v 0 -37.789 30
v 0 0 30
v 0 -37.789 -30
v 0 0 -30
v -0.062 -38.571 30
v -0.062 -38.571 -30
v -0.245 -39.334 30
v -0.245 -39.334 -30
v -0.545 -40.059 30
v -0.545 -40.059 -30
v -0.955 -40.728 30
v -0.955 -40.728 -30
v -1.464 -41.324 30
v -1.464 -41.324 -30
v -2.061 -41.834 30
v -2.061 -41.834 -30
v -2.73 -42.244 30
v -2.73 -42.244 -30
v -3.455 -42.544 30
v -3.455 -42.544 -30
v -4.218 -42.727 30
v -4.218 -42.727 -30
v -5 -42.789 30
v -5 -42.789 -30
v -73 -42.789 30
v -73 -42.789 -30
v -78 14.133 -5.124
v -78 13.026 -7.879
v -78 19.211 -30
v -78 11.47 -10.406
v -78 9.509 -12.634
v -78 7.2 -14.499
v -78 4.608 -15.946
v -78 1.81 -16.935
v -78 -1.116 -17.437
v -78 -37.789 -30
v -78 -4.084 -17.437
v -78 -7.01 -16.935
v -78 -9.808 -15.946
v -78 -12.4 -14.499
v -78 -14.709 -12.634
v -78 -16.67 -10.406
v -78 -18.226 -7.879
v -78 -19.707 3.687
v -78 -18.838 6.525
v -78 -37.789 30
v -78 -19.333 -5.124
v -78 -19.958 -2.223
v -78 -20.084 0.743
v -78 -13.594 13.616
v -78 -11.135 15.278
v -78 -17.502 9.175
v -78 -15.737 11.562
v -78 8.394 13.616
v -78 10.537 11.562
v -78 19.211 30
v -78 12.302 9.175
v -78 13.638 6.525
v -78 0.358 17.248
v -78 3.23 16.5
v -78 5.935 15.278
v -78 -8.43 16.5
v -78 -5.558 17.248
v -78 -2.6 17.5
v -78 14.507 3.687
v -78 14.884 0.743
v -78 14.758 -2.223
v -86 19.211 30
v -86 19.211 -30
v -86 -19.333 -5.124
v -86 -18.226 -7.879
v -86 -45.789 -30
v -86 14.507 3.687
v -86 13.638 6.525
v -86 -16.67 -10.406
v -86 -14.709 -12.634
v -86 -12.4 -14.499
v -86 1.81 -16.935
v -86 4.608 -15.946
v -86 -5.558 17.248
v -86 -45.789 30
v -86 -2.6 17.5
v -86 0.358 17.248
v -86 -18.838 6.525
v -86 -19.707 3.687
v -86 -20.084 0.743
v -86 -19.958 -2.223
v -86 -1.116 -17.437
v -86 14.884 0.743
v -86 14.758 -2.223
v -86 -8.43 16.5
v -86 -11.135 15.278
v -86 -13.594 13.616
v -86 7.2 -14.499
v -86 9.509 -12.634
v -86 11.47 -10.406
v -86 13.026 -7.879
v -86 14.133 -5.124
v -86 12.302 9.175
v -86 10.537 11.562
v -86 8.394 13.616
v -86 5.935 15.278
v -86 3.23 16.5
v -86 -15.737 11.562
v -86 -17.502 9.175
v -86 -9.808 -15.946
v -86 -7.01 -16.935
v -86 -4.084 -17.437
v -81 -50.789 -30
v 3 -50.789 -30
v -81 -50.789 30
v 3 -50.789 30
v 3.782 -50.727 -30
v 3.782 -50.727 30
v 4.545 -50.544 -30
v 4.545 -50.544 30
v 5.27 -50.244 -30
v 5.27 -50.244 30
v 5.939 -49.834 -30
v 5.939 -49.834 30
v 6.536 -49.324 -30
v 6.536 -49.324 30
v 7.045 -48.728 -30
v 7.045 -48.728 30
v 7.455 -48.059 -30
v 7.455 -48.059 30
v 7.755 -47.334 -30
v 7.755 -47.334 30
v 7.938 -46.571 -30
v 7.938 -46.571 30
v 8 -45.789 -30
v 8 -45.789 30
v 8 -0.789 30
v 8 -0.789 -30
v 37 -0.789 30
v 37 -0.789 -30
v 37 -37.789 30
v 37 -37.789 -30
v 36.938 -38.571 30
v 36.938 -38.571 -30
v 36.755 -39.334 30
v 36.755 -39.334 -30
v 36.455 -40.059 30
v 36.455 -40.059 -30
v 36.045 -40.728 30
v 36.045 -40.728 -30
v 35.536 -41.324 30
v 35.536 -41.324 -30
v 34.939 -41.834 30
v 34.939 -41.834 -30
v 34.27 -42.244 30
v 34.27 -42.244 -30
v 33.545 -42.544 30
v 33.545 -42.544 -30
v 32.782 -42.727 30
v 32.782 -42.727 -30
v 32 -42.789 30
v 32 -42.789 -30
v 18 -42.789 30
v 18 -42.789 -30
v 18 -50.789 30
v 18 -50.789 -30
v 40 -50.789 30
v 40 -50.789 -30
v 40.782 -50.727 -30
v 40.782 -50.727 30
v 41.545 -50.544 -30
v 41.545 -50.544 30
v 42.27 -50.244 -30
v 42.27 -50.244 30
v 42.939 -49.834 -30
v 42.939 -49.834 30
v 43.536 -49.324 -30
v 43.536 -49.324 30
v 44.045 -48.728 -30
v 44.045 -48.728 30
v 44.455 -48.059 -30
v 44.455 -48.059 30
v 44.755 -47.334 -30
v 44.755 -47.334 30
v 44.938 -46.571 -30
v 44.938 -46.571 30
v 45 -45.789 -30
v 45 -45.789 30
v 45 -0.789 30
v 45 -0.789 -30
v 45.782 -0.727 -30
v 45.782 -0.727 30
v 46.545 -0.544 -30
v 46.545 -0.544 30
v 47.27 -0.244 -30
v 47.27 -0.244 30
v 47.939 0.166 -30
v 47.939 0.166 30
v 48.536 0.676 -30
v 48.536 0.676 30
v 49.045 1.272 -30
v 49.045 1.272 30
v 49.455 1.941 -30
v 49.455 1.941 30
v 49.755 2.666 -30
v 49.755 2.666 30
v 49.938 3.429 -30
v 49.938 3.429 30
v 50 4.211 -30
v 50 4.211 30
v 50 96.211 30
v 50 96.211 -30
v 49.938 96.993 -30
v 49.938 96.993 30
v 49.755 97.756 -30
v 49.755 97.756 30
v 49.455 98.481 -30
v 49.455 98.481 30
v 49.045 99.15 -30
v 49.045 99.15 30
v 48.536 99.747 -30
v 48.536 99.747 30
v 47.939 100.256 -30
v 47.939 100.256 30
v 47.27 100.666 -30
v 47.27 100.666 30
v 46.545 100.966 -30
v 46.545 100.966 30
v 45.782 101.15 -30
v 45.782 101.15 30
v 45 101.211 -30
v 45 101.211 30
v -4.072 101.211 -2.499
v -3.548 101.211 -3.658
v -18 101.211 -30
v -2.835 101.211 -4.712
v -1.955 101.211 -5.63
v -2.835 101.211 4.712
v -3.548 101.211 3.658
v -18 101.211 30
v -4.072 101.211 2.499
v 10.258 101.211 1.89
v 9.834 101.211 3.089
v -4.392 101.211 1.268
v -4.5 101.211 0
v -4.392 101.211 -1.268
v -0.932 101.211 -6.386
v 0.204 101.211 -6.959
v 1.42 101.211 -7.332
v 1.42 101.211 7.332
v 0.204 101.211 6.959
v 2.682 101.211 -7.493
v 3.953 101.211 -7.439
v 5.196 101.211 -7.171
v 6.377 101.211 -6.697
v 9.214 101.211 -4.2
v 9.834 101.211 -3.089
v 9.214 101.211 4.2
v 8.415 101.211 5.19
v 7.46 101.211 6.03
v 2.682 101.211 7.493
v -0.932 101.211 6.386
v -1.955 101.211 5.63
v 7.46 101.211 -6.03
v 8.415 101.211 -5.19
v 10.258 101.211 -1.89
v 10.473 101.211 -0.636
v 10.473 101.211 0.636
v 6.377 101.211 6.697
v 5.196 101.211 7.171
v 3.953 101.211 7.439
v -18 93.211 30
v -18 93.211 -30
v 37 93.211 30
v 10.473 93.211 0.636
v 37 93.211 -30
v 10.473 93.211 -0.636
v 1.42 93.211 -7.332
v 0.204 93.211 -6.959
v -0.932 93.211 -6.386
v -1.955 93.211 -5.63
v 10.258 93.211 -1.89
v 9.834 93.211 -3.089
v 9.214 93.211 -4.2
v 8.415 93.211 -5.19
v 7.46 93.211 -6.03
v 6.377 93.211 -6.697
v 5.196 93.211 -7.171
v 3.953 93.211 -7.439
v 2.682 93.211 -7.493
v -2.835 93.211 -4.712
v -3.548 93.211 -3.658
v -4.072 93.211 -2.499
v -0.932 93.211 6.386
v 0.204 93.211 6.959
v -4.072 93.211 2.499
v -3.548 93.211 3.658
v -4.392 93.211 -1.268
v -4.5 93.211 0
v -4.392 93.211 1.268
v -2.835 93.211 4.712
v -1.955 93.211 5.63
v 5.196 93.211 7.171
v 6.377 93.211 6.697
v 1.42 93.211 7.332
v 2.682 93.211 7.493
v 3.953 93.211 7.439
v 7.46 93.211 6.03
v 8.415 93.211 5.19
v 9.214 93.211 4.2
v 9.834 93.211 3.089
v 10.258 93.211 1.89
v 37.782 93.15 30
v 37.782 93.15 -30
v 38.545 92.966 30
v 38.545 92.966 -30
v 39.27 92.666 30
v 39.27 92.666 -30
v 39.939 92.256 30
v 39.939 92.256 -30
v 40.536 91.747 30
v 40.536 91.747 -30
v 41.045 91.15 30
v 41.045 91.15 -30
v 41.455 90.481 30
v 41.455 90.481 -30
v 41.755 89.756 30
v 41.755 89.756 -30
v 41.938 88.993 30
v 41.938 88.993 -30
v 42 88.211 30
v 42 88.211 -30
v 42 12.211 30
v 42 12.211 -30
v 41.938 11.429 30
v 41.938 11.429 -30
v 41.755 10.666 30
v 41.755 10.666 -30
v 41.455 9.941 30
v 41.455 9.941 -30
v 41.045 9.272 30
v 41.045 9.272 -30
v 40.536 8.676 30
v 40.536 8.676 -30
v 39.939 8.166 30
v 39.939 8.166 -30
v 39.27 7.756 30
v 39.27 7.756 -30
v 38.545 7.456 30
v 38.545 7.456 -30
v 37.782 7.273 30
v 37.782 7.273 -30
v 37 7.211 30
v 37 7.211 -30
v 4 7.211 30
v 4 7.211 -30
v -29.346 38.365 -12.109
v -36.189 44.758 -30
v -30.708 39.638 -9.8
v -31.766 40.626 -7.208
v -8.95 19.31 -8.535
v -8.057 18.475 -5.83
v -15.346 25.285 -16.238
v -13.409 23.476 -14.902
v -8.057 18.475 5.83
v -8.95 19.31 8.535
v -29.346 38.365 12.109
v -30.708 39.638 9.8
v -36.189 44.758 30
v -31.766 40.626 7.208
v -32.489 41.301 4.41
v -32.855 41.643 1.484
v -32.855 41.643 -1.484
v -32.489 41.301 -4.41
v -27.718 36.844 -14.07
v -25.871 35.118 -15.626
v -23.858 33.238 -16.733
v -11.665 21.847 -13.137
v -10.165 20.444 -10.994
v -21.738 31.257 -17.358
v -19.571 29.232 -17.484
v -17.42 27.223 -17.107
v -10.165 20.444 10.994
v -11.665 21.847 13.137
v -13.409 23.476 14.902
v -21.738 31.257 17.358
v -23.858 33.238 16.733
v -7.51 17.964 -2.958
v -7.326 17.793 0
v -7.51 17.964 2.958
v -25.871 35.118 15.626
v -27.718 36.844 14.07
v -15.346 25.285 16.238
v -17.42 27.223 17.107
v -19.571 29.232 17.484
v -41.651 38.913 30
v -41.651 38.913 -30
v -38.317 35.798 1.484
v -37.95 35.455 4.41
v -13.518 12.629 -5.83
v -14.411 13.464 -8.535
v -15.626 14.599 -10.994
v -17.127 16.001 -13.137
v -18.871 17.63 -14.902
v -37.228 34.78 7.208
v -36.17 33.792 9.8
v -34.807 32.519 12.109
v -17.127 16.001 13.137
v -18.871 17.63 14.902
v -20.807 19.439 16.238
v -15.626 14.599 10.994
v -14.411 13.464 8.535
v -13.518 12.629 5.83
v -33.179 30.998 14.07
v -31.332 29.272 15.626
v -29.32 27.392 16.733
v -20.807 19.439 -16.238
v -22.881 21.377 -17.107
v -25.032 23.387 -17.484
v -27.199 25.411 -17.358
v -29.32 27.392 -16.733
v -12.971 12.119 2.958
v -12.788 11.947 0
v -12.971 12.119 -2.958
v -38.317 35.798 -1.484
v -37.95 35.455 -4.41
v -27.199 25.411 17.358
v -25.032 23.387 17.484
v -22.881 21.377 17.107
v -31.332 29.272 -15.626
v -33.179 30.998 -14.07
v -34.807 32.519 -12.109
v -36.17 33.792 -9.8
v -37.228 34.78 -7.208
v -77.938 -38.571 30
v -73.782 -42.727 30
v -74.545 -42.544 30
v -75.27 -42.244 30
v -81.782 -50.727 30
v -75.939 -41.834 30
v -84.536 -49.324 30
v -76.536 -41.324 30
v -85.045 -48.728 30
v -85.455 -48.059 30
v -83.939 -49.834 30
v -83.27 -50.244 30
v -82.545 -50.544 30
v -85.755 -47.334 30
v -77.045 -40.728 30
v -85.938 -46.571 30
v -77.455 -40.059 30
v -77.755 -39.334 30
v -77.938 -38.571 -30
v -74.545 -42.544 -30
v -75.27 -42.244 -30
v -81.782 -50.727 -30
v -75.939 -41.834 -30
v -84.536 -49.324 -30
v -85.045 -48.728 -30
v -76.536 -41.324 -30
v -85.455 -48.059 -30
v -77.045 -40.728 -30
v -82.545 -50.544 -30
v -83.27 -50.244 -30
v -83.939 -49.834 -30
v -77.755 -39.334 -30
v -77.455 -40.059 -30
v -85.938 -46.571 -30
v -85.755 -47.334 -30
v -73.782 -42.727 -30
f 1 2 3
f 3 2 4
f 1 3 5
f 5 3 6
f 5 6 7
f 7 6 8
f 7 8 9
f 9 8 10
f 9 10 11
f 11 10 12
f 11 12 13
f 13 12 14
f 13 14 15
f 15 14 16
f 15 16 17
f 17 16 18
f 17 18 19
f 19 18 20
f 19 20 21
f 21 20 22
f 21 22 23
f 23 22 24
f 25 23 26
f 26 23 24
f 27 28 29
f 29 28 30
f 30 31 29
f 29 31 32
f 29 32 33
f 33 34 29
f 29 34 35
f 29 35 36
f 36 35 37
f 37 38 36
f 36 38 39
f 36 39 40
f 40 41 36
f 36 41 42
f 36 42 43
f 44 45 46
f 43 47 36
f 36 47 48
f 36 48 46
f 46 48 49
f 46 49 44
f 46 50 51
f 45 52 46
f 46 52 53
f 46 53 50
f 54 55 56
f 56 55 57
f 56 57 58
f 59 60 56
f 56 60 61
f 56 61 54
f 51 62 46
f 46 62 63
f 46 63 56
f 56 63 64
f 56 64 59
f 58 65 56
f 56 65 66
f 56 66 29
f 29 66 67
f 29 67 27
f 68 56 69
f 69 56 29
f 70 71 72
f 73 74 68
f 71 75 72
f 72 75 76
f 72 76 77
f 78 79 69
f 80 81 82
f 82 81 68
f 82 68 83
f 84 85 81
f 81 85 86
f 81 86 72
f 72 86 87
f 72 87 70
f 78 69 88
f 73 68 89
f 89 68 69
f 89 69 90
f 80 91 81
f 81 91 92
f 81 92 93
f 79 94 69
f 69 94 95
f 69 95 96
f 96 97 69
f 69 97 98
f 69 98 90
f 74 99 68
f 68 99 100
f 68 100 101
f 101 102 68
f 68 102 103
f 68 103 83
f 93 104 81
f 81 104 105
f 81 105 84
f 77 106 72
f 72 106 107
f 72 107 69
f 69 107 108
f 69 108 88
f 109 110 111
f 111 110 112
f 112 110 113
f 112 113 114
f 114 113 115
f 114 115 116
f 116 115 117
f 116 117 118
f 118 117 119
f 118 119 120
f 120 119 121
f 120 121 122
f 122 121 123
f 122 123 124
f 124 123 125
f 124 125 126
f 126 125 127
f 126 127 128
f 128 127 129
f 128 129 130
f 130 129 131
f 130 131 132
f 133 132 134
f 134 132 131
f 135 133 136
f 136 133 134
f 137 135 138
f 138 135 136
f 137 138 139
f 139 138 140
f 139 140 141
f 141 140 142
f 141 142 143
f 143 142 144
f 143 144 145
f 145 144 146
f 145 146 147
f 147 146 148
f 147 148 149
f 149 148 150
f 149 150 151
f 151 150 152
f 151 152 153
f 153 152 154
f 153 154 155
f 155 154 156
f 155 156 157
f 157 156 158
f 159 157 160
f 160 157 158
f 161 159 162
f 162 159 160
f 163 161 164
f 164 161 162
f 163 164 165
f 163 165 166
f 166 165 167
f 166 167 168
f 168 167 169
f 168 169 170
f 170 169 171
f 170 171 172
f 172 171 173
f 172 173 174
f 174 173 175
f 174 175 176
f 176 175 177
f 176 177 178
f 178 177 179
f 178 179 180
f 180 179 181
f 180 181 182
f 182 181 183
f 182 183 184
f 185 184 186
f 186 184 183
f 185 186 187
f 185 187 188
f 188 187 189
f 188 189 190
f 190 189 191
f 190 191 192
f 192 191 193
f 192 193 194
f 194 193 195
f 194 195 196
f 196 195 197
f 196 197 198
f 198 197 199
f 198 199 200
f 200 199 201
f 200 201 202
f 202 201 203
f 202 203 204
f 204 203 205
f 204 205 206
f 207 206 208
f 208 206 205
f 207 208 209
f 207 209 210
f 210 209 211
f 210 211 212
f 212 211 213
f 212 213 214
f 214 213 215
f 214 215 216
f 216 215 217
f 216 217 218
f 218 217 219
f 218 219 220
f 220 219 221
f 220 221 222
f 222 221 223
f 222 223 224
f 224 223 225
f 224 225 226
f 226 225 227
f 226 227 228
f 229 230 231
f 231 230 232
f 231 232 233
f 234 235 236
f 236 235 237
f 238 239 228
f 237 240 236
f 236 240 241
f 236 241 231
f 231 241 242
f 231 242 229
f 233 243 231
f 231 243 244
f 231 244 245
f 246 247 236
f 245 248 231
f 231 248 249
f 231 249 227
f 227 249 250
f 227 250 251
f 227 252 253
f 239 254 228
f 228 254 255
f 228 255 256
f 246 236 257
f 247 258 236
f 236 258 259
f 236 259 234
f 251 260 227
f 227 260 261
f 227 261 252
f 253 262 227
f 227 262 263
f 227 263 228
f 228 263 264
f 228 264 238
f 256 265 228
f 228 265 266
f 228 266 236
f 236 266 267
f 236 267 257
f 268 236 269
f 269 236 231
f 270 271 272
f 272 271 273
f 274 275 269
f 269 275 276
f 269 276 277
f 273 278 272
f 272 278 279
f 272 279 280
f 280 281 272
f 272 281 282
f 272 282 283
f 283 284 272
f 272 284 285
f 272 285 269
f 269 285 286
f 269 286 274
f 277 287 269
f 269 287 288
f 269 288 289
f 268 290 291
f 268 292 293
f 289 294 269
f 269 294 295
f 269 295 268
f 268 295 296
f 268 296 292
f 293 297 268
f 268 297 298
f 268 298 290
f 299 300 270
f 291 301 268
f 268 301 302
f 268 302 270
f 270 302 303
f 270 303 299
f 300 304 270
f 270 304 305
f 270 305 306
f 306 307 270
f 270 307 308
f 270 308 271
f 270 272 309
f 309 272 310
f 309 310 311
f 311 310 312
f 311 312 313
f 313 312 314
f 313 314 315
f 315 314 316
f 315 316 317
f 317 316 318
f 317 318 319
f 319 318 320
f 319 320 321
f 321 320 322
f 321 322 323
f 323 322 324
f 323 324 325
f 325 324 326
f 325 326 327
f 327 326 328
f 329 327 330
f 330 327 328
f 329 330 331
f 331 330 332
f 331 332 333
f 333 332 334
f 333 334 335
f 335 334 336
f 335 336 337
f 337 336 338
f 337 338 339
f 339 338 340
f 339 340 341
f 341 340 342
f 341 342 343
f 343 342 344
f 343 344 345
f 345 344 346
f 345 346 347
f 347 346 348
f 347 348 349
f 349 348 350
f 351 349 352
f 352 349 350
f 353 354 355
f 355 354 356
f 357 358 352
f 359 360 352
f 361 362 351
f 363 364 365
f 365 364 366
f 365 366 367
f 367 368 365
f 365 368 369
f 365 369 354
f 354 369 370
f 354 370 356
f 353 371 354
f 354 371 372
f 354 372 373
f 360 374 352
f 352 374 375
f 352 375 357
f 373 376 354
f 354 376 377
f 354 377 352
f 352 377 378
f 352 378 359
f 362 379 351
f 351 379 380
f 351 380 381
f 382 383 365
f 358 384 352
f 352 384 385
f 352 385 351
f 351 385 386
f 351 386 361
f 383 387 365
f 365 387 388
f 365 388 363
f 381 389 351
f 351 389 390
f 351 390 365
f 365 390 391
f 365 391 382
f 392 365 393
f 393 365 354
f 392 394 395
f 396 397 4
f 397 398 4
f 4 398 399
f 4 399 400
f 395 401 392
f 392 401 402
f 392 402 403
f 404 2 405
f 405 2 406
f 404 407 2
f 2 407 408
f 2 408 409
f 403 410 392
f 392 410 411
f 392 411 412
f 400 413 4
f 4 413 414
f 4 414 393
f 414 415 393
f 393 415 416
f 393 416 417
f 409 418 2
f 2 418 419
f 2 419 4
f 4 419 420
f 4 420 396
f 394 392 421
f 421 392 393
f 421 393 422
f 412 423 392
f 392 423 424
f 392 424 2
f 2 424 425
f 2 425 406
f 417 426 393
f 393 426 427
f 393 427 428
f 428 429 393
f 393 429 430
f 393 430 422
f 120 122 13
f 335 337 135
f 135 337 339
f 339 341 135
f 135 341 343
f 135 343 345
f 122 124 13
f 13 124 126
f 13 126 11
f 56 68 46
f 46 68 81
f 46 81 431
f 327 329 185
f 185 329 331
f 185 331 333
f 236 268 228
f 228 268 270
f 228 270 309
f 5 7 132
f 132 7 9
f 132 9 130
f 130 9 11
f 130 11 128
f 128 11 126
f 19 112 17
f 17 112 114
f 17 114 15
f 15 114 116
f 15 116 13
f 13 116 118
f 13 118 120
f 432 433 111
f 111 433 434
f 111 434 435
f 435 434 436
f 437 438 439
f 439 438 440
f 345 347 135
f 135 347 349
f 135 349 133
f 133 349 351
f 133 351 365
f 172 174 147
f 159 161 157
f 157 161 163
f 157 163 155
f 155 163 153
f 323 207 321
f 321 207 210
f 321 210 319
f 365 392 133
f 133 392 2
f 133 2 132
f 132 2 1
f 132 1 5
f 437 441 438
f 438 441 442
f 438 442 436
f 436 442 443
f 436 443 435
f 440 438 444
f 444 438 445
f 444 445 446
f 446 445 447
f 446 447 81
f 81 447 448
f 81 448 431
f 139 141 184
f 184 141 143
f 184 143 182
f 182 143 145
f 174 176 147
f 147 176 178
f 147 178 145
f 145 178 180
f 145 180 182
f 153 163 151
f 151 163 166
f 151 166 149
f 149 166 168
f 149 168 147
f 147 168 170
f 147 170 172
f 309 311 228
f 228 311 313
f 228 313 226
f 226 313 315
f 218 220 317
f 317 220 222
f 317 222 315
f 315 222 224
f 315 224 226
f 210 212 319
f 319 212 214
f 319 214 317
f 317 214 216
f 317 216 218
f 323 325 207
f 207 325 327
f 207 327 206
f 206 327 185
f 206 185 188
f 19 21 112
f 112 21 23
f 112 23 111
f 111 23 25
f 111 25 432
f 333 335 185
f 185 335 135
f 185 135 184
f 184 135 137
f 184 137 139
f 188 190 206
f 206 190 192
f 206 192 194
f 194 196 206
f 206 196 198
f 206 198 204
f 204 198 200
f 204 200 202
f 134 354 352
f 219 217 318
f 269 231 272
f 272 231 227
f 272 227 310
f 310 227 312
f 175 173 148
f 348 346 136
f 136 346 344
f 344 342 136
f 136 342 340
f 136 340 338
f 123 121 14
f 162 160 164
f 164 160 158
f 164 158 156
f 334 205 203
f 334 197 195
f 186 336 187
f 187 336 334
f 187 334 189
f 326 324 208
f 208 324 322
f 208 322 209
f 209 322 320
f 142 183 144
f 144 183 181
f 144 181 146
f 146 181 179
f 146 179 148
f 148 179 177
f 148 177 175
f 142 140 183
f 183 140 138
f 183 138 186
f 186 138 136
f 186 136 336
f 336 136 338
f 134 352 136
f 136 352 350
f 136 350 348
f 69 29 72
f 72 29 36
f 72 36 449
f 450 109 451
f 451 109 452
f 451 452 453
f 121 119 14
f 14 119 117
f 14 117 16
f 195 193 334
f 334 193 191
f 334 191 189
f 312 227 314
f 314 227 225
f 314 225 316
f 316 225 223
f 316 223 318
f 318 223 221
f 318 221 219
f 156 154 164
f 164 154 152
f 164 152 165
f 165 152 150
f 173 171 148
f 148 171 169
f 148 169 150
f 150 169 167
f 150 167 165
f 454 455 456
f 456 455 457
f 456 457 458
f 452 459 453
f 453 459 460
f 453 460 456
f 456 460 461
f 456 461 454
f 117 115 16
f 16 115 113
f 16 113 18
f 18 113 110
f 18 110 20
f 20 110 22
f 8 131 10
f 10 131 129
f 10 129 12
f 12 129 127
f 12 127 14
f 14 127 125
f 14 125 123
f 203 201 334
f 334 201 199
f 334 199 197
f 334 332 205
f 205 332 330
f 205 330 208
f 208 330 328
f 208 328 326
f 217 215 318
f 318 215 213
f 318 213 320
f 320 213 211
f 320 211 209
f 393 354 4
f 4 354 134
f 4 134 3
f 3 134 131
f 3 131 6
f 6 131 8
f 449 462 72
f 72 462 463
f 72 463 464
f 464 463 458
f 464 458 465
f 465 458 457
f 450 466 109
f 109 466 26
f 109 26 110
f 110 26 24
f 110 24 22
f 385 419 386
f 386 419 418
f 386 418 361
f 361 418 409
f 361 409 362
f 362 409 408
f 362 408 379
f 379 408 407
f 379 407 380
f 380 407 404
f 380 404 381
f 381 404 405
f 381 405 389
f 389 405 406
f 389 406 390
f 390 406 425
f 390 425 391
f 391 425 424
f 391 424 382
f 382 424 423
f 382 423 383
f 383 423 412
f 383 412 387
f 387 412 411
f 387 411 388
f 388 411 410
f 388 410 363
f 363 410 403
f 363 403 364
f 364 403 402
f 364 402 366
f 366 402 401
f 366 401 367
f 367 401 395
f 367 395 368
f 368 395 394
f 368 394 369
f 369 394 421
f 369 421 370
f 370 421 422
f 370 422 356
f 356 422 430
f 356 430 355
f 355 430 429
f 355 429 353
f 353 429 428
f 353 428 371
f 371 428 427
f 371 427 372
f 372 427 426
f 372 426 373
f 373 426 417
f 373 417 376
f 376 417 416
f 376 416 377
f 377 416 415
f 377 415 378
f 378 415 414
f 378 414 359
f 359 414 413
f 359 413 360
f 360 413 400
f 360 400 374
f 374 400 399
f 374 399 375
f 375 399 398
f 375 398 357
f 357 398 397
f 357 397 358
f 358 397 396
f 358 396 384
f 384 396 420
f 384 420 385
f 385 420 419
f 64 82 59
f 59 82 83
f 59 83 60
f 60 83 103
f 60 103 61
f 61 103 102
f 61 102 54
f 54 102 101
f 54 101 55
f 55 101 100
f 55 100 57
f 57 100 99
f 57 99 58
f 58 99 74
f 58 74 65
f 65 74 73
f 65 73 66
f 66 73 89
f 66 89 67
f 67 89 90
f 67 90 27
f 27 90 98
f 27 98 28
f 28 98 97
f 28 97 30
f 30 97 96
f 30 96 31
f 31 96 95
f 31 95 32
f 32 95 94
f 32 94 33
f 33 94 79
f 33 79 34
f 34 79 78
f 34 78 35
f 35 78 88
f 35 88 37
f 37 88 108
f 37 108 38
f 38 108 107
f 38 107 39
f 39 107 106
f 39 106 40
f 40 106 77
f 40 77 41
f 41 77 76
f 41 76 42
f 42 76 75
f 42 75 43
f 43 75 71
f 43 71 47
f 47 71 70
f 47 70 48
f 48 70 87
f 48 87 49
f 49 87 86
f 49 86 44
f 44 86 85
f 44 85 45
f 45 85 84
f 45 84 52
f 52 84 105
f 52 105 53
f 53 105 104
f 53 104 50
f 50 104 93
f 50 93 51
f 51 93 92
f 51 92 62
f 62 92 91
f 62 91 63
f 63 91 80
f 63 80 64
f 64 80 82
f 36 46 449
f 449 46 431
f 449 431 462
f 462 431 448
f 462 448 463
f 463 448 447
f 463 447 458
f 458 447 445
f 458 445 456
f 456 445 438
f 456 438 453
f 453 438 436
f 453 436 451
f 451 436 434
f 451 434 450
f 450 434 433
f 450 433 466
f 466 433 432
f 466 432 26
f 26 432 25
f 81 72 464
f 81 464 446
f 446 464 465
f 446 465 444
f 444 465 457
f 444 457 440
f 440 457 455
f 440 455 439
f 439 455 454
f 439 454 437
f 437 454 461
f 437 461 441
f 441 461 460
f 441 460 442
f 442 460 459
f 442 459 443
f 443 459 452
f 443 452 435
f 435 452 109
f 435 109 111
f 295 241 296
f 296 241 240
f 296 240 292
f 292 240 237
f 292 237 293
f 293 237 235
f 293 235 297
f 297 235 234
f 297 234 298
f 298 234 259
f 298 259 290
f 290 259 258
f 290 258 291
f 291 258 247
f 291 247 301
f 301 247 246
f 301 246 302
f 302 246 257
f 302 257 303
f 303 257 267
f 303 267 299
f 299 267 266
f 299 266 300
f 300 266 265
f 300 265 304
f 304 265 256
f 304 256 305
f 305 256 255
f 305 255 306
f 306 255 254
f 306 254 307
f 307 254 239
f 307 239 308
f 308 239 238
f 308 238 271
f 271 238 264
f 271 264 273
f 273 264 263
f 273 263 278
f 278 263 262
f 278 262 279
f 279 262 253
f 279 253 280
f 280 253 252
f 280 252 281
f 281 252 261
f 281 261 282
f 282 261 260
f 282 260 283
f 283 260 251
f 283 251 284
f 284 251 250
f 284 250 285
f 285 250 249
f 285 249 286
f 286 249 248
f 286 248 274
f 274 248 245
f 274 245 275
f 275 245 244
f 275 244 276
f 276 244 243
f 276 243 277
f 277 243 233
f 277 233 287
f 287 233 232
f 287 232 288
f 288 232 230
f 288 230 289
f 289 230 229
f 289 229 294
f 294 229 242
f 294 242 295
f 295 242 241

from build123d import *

# Parameters (mm, degrees)
BOSS_EXTRUDE3_DEPTH = 30
SKETCH10_R          = 17.5
CUT_EXTRUDE1_DEPTH  = 8
SKETCH11_R          = 17.5
CUT_EXTRUDE2_DEPTH  = 8
FILLET3_R           = 5
FILLET4_R           = 5
SKETCH12_R          = 7.5
CUT_EXTRUDE3_DEPTH  = 10


with BuildPart() as part:
    # Sketch3 → Boss-Extrude3 (new body, symmetric)
    with BuildSketch(Plane.XY):
        with BuildLine():
            Line((0, 0), (-41.650922989, 38.912730747))
            Line((-41.650922989, 38.912730747), (-36.189487094, 44.758474324))
            Line((-36.189487094, 44.758474324), (4, 7.211102551))
            Line((4, 7.211102551), (37, 7.211102551))
            ThreePointArc((37, 7.211102551), (40.535533906, 8.675568645), (42, 12.211102551))
            Line((42, 12.211102551), (42, 88.211102551))
            ThreePointArc((42, 88.211102551), (40.535533906, 91.746636457), (37, 93.211102551))
            Line((37, 93.211102551), (-18, 93.211102551))
            Line((-18, 93.211102551), (-18, 101.211102551))
            Line((-18, 101.211102551), (45, 101.211102551))
            ThreePointArc((45, 101.211102551), (48.535533906, 99.746636457), (50, 96.211102551))
            Line((50, 96.211102551), (50, 4.211102551))
            ThreePointArc((50, 4.211102551), (48.535533906, 0.675568645), (45, -0.788897449))
            Line((45, -0.788897449), (45, -45.788897449))
            ThreePointArc((45, -45.788897449), (43.535533906, -49.324431355), (40, -50.788897449))
            Line((40, -50.788897449), (18, -50.788897449))
            Line((18, -50.788897449), (18, -42.788897449))
            Line((18, -42.788897449), (32, -42.788897449))
            ThreePointArc((32, -42.788897449), (35.535533906, -41.324431355), (37, -37.788897449))
            Line((37, -37.788897449), (37, -0.788897449))
            Line((37, -0.788897449), (8, -0.788897449))
            Line((8, -0.788897449), (8, -45.788897449))
            ThreePointArc((8, -45.788897449), (6.535533906, -49.324431355), (3, -50.788897449))
            Line((3, -50.788897449), (-86, -50.788897449))
            Line((-86, -50.788897449), (-86, 19.211102551))
            Line((-86, 19.211102551), (-78, 19.211102551))
            Line((-78, 19.211102551), (-78, -42.788897449))
            Line((-78, -42.788897449), (-5, -42.788897449))
            ThreePointArc((-5, -42.788897449), (-1.464466094, -41.324431355), (0, -37.788897449))
            Line((0, -37.788897449), (0, 0))
        make_face()
    extrude(amount=BOSS_EXTRUDE3_DEPTH, both=True)

    # Sketch10 → Cut-Extrude1 (cut)
    with BuildSketch(Plane(origin=(0, 0, 0), x_dir=(0, 0, 1), z_dir=(-0.682679487, -0.730717947, 0))):
        with Locations((0, 35)):
            Circle(SKETCH10_R)
    extrude(amount=-CUT_EXTRUDE1_DEPTH, mode=Mode.SUBTRACT)

    # Sketch11 → Cut-Extrude2 (cut)
    with BuildSketch(Plane.ZY.offset(86)):
        with Locations((0, -2.6)):
            Circle(SKETCH11_R)
    extrude(amount=-CUT_EXTRUDE2_DEPTH, mode=Mode.SUBTRACT)

    # Fillet3
    fillet3_edges = [part.edges().sort_by_distance(p)[0] for p in [
        (-78, -42.788897449, 0),
    ]]
    fillet(fillet3_edges, radius=FILLET3_R)

    # Fillet4
    fillet4_edges = [part.edges().sort_by_distance(p)[0] for p in [
        (-86, -50.788897449, 0),
    ]]
    fillet(fillet4_edges, radius=FILLET4_R)

    # Sketch12 → Cut-Extrude3 (cut)
    with BuildSketch(Plane(origin=(0, 101.211102551, 0), x_dir=(1, 0, 0), z_dir=(0, 1, 0))):
        with Locations((3, 0)):
            Circle(SKETCH12_R)
    extrude(amount=-CUT_EXTRUDE3_DEPTH, mode=Mode.SUBTRACT)


solid = part.part
